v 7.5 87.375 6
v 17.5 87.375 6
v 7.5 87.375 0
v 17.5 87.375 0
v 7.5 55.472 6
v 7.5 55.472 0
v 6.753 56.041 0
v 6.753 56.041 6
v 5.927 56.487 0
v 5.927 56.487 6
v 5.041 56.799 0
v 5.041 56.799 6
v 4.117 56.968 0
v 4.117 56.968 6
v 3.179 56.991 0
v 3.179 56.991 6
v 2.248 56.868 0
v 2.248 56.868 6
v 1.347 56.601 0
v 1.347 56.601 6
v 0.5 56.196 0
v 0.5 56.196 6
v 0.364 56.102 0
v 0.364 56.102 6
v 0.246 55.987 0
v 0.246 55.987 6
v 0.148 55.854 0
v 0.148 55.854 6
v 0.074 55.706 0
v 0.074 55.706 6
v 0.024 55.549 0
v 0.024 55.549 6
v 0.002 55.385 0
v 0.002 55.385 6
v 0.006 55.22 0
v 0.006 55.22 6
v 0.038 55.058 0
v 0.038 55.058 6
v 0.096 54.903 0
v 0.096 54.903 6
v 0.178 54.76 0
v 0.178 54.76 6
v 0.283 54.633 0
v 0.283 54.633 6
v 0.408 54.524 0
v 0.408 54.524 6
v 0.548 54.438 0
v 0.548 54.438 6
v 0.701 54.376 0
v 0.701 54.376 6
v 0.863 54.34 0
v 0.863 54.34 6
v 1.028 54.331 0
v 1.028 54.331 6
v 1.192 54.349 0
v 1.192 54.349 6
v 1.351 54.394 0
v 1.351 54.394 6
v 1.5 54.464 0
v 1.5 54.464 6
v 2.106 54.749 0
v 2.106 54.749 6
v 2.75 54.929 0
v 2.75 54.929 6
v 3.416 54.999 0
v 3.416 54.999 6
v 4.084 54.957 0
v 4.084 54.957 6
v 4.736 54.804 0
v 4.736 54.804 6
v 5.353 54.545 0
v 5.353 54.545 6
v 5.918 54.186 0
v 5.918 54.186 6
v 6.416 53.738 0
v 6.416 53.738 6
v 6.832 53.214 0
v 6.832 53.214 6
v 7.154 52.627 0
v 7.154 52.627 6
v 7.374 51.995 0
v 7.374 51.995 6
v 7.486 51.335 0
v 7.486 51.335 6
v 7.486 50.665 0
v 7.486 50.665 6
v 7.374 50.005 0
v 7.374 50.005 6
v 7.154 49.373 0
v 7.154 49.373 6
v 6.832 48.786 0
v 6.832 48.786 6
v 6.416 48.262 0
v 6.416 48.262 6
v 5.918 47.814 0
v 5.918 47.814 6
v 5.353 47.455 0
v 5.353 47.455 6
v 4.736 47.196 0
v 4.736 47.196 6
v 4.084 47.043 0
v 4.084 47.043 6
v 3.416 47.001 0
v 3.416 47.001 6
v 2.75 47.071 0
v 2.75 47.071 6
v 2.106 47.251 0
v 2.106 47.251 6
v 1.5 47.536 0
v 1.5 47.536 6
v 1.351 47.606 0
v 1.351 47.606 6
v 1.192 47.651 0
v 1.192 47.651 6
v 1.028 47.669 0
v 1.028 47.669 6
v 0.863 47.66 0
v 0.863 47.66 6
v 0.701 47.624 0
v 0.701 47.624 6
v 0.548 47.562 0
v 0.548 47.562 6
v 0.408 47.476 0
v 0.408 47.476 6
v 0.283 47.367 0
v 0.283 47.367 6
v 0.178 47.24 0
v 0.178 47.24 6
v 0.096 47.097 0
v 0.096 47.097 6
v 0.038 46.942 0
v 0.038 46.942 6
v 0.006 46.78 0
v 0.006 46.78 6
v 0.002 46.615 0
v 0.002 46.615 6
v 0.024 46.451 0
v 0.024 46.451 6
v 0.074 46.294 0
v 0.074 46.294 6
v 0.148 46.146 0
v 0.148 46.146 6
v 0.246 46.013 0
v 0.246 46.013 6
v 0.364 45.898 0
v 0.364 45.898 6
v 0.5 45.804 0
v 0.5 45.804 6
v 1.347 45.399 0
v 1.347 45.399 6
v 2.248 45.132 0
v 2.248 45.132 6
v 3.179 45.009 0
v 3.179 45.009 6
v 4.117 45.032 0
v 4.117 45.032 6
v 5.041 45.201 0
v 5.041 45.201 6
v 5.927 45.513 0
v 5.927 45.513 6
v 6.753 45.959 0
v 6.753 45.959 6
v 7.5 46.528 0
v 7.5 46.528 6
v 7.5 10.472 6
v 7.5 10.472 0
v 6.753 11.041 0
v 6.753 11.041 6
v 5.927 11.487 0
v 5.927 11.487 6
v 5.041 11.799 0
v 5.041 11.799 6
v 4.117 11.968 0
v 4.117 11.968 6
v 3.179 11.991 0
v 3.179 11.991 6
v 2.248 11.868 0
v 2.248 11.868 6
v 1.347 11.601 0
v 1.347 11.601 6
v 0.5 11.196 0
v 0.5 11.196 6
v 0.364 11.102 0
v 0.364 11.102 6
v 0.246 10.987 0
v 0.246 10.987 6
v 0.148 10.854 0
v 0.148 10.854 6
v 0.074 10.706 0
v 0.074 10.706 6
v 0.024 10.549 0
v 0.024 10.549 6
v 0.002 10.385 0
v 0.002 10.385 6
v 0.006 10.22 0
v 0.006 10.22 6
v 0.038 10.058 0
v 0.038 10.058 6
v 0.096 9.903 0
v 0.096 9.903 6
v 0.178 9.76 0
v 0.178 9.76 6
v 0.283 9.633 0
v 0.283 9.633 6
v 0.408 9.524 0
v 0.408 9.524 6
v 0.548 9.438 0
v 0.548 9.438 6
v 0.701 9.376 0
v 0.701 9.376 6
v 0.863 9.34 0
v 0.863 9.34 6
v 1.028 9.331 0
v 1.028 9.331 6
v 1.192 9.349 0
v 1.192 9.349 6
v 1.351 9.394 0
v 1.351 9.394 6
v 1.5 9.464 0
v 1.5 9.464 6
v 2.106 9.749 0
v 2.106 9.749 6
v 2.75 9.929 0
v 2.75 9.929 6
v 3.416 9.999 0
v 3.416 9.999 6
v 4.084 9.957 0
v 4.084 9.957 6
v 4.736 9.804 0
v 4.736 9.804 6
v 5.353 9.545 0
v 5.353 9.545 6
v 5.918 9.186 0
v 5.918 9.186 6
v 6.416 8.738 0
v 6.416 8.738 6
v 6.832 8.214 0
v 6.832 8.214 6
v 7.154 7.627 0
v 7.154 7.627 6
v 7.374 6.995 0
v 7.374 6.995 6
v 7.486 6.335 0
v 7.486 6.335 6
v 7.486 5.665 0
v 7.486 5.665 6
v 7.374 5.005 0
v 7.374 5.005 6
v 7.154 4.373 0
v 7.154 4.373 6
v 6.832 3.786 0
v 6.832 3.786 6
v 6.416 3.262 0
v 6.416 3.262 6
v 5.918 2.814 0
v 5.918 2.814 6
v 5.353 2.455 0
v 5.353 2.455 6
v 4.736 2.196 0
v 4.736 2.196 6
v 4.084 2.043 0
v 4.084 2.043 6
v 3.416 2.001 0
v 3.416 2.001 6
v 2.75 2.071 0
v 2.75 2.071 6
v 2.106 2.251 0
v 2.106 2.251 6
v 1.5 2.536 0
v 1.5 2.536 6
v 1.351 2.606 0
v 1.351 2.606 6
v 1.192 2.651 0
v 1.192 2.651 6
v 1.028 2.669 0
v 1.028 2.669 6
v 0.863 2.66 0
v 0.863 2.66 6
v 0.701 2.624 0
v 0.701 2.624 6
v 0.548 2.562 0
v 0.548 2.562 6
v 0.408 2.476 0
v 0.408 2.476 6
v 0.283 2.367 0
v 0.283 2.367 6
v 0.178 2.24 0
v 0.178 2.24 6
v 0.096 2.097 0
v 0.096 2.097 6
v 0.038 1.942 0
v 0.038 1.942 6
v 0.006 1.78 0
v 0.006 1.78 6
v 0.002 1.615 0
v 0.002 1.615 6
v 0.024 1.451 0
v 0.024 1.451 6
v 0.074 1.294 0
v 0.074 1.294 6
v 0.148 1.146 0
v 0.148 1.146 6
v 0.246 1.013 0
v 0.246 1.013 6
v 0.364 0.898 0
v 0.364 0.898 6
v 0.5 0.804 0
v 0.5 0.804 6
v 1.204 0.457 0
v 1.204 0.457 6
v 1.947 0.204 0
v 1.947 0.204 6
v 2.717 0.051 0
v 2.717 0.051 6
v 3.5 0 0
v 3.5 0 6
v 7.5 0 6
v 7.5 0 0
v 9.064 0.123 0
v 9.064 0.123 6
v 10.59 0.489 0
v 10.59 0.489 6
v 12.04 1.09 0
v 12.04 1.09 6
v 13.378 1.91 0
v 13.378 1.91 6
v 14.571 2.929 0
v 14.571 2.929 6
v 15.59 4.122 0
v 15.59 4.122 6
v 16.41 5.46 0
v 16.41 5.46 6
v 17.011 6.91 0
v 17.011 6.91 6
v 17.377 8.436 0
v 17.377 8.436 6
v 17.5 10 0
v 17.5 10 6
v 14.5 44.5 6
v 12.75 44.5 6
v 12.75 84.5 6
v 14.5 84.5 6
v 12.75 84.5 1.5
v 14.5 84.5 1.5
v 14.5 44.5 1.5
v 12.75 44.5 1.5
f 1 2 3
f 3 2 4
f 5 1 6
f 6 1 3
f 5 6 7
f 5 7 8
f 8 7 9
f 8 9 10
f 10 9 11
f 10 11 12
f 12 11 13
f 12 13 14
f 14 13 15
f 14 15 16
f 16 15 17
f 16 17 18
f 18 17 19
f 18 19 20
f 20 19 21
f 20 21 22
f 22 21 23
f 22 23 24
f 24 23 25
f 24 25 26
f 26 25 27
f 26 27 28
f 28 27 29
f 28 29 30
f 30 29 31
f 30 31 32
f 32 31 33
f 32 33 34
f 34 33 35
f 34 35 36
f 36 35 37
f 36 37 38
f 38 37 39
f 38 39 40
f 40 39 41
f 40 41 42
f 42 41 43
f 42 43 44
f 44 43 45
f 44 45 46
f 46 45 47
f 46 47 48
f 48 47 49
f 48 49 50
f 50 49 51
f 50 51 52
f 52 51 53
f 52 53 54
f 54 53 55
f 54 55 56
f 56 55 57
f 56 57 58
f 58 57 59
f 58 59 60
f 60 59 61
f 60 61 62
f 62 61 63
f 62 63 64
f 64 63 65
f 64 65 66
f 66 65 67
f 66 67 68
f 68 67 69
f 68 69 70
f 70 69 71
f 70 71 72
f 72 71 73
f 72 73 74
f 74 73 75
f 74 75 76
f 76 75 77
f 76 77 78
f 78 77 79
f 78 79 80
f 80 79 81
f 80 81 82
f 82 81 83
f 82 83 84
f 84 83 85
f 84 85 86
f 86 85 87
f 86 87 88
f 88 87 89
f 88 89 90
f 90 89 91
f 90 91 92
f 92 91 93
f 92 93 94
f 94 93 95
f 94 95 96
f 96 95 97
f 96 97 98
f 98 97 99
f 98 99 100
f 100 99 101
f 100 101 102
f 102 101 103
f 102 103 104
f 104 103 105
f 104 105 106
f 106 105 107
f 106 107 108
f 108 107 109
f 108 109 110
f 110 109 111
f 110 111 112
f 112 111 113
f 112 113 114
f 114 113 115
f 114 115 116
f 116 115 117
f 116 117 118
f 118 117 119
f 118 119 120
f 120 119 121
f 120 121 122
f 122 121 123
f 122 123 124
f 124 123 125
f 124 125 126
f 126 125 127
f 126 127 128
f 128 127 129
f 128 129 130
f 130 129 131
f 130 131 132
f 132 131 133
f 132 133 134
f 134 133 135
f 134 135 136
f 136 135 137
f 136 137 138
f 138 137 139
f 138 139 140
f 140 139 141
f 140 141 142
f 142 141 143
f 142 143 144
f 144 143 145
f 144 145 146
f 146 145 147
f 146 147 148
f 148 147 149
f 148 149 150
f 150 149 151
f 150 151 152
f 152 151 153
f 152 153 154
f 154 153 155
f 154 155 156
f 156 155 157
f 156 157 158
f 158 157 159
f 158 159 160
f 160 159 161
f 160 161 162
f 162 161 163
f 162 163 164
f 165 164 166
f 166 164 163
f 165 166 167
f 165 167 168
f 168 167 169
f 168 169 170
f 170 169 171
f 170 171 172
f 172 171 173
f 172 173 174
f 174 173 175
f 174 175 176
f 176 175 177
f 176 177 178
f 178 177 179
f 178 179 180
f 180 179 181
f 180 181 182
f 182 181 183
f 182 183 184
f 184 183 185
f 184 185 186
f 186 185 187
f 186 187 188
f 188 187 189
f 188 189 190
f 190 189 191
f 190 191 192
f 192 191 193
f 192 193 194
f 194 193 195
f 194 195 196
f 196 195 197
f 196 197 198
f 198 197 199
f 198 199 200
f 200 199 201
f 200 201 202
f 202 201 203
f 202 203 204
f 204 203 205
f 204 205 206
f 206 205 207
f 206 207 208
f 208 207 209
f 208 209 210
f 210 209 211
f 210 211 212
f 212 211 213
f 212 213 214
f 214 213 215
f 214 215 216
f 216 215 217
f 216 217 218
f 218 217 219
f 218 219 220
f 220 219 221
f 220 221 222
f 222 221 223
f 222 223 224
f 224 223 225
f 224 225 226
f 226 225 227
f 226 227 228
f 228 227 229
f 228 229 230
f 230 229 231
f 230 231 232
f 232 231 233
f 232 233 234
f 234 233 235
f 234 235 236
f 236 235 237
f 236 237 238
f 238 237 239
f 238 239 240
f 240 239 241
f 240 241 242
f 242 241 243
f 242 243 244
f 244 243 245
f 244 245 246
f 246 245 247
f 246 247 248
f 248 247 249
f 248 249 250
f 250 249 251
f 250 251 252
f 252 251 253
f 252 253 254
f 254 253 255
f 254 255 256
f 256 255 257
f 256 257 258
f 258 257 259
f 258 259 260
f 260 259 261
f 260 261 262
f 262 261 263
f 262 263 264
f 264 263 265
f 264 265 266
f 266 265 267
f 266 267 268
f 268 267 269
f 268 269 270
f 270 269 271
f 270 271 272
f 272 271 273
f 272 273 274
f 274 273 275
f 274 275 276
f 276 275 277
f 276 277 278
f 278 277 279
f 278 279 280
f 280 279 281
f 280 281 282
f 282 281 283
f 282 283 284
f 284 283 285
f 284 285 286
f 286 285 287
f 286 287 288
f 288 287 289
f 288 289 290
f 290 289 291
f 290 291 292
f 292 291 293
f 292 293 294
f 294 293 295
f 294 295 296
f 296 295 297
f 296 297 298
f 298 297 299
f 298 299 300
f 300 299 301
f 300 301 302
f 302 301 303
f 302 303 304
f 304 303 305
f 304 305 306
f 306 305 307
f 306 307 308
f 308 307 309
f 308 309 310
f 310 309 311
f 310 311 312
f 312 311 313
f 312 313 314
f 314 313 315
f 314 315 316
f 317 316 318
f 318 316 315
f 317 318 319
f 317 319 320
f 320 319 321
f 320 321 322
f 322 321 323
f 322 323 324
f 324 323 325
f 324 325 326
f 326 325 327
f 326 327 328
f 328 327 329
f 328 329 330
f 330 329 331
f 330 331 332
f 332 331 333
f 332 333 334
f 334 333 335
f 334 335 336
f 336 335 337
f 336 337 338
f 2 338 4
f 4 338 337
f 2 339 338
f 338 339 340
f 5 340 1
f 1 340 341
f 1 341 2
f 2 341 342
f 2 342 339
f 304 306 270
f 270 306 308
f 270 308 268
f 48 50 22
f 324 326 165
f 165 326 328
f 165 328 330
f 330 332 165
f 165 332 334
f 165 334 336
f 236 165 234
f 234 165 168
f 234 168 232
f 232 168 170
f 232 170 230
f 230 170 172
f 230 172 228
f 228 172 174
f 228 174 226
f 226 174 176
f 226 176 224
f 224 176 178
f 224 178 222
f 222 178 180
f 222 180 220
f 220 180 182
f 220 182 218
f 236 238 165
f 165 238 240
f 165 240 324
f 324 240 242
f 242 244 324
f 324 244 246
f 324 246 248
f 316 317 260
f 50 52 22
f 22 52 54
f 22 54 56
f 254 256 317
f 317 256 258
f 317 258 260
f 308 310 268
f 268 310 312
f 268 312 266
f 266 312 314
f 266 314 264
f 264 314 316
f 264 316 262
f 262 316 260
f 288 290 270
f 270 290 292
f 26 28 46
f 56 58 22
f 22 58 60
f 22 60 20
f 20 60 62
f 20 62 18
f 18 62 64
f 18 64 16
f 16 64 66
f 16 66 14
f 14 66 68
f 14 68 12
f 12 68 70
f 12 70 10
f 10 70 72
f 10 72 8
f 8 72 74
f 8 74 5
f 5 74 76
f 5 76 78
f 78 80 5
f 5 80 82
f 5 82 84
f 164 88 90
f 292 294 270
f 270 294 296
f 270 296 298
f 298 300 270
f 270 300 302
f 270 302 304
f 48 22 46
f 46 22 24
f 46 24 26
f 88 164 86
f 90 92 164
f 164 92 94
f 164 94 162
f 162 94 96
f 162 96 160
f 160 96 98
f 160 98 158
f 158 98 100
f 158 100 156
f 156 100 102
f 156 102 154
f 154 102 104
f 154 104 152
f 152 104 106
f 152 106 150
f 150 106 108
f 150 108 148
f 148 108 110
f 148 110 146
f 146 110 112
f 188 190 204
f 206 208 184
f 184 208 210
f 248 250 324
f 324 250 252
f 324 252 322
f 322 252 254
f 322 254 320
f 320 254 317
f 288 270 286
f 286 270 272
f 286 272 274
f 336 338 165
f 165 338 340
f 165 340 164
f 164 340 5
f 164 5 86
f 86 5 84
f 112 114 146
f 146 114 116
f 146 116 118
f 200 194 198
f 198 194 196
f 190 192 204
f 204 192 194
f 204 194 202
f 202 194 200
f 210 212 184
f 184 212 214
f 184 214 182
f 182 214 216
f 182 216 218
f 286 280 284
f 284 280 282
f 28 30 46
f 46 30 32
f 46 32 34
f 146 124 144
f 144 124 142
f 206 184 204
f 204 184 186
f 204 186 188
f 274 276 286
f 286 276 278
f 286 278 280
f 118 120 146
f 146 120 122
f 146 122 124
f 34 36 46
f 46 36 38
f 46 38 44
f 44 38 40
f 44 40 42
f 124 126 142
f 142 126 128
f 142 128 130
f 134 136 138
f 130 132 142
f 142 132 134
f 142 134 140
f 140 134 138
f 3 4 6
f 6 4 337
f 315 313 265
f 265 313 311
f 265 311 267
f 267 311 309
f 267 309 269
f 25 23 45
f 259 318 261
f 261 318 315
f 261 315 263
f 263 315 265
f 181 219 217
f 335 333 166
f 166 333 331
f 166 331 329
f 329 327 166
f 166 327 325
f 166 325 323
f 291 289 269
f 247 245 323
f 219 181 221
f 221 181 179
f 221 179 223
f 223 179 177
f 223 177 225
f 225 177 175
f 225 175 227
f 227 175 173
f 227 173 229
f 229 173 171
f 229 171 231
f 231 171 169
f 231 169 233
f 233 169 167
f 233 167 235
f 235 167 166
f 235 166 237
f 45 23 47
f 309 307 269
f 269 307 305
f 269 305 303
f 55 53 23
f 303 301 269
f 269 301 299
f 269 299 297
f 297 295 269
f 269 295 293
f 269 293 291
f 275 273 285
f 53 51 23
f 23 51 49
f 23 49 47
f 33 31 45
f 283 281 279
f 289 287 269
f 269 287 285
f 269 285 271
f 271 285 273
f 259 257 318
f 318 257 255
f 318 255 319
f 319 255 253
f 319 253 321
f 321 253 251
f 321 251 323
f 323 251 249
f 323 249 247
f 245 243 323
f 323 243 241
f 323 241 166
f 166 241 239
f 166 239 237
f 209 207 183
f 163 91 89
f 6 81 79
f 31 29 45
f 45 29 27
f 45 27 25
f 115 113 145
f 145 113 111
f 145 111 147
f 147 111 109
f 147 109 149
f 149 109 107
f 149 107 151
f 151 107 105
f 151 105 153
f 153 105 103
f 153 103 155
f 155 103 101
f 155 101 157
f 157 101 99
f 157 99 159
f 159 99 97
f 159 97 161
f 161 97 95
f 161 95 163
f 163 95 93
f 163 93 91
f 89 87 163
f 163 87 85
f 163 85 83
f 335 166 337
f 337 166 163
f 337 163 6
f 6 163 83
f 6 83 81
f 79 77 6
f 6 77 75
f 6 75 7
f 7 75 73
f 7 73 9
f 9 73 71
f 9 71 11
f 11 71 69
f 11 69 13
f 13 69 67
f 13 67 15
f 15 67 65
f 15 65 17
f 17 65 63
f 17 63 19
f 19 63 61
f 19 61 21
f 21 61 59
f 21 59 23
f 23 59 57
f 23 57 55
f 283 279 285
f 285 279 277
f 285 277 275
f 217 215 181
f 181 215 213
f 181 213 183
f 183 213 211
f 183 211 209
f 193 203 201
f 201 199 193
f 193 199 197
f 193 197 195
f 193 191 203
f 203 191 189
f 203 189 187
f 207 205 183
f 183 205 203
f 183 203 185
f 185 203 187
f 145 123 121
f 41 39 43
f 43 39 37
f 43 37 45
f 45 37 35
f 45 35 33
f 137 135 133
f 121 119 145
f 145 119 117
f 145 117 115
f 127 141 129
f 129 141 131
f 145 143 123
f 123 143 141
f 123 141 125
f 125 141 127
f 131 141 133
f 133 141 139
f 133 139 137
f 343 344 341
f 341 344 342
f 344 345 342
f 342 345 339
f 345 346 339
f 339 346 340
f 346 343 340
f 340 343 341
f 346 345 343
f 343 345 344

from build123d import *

# Parameters (mm, degrees)
BOSS_EXTRUDE_BASE_DEPTH = 6
SKETCH4_W               = 1.75
SKETCH4_H               = 40
CUT_EXTRUDE_SLOT_DEPTH  = 4.5


with BuildPart() as part:
    # Sketch1 → Boss-Extrude-Base (new body)
    with BuildSketch(Plane.XY):
        with BuildLine():
            Line((17.5, 87.375), (17.5, 10))
            ThreePointArc((17.5, 10), (14.571067812, 2.928932188), (7.5, 0))
            Line((7.5, 0), (3.5, 0))
            ThreePointArc((3.5, 0), (1.947085729, 0.204445042), (0.5, 0.803847577))
            ThreePointArc((0.5, 0.803847577), (0.133974596, 2.169872981), (1.5, 2.535898385))
            ThreePointArc((1.5, 2.535898385), (7.5, 6), (1.5, 9.464101615))
            ThreePointArc((1.5, 9.464101615), (0.133974596, 9.830127019), (0.5, 11.196152423))
            ThreePointArc((0.5, 11.196152423), (4.117292444, 11.968161362), (7.5, 10.472135955))
            Line((7.5, 10.472135955), (7.5, 46.527864045))
            ThreePointArc((7.5, 46.527864045), (4.117292444, 45.031838638), (0.5, 45.803847577))
            ThreePointArc((0.5, 45.803847577), (0.133974596, 47.169872981), (1.5, 47.535898385))
            ThreePointArc((1.5, 47.535898385), (7.5, 51), (1.5, 54.464101615))
            ThreePointArc((1.5, 54.464101615), (0.133974596, 54.830127019), (0.5, 56.196152423))
            ThreePointArc((0.5, 56.196152423), (4.117292444, 56.968161362), (7.5, 55.472135955))
            Line((7.5, 55.472135955), (7.5, 87.375))
            Line((7.5, 87.375), (17.5, 87.375))
        make_face()
    extrude(amount=BOSS_EXTRUDE_BASE_DEPTH)

    # Sketch4 → Cut-Extrude-Slot (cut)
    with BuildSketch(Plane.XY.offset(6)):
        with Locations((13.625, 64.5)):
            Rectangle(SKETCH4_W, SKETCH4_H)
    extrude(amount=-CUT_EXTRUDE_SLOT_DEPTH, mode=Mode.SUBTRACT)


solid = part.part
